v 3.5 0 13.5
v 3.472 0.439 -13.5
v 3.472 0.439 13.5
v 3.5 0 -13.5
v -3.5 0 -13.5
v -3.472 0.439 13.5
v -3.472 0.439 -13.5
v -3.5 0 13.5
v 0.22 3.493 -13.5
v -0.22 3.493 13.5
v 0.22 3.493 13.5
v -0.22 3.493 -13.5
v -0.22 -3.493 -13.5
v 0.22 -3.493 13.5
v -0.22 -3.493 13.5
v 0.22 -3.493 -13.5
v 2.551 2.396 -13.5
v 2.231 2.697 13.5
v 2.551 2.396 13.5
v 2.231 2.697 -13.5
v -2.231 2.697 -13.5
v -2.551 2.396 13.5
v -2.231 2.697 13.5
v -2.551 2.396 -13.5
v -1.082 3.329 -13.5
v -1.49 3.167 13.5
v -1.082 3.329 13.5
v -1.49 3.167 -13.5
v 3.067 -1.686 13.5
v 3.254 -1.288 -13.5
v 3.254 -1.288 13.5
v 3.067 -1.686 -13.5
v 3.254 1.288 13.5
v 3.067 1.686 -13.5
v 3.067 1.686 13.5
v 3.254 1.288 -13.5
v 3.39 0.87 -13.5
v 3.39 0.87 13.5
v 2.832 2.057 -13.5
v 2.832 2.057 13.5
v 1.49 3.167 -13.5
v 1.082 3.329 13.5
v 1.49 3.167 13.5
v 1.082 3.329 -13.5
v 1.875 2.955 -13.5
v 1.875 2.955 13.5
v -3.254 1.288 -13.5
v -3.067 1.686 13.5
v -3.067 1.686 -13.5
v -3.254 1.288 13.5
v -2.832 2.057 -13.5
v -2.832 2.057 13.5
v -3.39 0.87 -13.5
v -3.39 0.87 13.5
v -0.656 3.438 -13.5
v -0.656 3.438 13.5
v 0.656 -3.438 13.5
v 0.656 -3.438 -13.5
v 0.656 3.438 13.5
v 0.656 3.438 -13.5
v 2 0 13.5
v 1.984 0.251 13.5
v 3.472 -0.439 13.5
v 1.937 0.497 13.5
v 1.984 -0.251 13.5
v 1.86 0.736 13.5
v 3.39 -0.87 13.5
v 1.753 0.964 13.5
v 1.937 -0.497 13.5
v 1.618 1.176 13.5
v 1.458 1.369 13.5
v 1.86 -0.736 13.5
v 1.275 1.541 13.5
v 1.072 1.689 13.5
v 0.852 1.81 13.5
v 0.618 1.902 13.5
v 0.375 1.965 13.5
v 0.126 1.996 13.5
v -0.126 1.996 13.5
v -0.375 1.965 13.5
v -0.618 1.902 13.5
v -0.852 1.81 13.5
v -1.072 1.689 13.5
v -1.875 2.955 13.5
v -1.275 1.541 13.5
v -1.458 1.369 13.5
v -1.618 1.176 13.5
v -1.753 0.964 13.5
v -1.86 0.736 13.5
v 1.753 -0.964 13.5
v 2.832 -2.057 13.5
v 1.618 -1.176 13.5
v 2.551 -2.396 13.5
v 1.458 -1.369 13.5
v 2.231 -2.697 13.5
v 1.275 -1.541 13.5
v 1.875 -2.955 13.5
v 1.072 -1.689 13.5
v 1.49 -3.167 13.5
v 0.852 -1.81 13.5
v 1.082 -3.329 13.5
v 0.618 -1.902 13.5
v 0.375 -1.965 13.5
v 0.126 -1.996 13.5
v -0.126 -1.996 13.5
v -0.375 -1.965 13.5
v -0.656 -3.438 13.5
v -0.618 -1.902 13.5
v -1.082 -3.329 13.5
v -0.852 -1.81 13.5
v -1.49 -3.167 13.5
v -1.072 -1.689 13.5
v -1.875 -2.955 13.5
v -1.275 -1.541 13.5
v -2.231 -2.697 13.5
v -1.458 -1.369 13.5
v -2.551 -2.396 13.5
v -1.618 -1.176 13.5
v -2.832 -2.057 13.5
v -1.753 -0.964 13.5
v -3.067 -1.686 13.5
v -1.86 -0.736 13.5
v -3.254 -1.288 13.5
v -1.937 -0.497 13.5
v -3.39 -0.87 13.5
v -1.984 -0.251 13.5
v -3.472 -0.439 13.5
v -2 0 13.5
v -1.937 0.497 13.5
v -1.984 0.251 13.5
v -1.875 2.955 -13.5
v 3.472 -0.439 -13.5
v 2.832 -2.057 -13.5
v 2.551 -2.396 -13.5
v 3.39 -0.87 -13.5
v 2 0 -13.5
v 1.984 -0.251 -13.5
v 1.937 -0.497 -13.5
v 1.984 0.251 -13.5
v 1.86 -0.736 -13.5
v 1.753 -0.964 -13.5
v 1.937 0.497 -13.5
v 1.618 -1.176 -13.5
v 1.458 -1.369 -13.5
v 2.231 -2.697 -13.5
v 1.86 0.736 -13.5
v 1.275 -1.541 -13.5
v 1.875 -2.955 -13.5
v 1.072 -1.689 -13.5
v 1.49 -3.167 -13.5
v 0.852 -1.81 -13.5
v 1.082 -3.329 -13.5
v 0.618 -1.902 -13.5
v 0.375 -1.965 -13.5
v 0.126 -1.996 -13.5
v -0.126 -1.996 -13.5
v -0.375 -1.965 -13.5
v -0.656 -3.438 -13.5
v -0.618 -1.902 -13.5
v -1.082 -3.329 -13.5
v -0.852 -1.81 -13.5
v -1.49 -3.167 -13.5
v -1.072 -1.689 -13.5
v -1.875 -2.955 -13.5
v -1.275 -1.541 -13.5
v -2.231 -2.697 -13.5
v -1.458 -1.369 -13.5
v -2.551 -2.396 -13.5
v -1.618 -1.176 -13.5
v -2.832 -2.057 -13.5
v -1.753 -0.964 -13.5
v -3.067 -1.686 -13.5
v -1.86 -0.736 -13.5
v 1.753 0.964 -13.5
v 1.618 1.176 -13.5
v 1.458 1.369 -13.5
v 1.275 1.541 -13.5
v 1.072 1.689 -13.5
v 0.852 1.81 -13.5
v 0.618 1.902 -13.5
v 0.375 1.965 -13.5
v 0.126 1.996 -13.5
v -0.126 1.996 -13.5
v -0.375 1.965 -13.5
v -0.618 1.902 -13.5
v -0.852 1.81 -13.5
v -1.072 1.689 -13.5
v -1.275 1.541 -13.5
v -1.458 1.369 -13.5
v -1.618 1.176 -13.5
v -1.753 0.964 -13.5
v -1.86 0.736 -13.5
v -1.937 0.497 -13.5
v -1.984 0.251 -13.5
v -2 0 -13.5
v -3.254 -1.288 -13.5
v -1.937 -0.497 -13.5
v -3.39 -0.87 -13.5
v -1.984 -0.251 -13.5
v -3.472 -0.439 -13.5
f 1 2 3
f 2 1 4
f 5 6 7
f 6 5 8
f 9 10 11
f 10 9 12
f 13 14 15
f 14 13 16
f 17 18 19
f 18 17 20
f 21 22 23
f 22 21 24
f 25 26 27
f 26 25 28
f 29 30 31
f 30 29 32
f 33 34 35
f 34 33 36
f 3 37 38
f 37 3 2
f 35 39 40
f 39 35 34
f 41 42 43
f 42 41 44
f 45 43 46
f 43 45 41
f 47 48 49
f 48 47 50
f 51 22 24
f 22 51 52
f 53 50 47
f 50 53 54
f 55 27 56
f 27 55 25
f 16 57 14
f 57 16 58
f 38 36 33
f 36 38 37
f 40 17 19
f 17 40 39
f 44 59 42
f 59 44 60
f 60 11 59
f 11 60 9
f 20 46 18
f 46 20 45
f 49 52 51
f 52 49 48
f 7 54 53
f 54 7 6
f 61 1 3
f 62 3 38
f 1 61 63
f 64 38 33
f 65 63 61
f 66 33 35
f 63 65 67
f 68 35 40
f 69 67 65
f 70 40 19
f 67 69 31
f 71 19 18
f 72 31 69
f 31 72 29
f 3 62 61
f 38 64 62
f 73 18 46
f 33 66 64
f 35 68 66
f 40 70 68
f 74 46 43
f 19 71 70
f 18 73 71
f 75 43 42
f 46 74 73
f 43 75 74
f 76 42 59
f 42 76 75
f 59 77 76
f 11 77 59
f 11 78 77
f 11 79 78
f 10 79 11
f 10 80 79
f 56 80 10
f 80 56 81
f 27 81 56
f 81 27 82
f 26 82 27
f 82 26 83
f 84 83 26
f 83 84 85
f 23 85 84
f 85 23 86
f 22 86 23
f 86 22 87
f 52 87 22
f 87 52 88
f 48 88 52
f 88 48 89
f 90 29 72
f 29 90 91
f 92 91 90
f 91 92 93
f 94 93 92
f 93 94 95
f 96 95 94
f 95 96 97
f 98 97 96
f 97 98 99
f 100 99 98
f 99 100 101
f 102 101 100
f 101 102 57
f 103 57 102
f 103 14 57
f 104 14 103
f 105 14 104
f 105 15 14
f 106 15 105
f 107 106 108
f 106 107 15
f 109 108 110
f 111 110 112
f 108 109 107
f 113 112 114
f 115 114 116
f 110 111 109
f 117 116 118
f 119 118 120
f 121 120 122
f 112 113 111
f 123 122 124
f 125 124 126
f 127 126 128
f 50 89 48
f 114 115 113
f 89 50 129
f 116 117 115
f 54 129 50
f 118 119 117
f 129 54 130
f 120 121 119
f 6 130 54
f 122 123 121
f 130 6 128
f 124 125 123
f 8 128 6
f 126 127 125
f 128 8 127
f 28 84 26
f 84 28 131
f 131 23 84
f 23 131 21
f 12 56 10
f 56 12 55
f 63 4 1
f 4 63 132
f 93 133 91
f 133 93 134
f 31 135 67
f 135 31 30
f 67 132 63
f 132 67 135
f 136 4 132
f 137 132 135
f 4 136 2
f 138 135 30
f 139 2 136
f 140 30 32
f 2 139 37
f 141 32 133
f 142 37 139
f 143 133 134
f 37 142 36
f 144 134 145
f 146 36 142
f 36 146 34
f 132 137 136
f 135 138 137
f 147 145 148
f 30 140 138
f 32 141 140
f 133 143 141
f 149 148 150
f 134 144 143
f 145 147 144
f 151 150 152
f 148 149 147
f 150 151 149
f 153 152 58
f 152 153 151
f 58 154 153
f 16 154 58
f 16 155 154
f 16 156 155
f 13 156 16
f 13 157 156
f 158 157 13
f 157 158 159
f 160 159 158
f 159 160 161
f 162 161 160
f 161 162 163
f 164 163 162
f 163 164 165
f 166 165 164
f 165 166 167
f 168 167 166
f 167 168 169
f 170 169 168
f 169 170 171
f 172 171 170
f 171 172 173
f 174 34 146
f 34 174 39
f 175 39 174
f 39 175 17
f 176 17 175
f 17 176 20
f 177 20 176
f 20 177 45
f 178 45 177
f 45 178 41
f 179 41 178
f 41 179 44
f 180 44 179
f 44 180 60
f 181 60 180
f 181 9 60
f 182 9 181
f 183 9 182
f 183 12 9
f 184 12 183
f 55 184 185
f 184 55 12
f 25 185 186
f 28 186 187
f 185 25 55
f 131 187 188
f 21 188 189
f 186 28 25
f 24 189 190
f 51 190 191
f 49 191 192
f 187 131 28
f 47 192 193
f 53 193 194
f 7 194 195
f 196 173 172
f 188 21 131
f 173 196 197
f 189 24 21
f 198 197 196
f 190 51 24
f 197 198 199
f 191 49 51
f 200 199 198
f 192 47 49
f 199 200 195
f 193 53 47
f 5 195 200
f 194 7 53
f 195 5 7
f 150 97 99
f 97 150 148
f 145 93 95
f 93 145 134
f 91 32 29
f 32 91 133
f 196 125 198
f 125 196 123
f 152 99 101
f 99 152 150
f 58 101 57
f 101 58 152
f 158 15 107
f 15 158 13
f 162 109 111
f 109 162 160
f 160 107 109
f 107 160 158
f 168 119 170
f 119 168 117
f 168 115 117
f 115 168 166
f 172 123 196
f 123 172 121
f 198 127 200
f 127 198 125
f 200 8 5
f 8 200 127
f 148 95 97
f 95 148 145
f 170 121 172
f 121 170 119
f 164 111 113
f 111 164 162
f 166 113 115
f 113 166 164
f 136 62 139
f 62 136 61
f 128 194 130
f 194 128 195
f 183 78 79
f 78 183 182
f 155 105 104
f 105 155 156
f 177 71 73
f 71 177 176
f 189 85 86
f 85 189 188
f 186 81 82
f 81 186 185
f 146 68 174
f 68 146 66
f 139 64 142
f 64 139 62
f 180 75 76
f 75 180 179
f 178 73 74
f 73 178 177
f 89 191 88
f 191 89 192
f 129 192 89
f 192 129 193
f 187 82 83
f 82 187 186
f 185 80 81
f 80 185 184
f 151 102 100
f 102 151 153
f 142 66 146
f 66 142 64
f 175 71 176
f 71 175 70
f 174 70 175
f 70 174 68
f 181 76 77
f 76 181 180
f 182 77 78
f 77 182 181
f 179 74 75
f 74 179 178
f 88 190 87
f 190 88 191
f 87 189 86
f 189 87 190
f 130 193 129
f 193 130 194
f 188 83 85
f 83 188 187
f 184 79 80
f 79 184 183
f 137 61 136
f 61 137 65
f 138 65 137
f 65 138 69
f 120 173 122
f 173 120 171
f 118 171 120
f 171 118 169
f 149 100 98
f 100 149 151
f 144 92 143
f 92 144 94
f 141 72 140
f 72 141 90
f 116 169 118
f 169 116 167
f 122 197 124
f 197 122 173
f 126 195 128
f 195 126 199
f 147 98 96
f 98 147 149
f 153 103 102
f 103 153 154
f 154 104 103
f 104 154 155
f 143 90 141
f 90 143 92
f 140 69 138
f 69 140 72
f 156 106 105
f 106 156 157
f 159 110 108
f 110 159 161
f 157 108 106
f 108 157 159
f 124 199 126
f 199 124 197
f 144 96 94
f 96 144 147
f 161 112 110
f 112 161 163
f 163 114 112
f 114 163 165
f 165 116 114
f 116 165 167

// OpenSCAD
$fn = 50;


difference() {
	union() {
		translate(v = [0, 0, -13.5000000000]) {
			cylinder(h = 27, r = 3.5000000000);
		}
	}
	union() {
		translate(v = [0, 0, -100.0000000000]) {
			cylinder(h = 200, r = 2.0000000000);
		}
	}
}
